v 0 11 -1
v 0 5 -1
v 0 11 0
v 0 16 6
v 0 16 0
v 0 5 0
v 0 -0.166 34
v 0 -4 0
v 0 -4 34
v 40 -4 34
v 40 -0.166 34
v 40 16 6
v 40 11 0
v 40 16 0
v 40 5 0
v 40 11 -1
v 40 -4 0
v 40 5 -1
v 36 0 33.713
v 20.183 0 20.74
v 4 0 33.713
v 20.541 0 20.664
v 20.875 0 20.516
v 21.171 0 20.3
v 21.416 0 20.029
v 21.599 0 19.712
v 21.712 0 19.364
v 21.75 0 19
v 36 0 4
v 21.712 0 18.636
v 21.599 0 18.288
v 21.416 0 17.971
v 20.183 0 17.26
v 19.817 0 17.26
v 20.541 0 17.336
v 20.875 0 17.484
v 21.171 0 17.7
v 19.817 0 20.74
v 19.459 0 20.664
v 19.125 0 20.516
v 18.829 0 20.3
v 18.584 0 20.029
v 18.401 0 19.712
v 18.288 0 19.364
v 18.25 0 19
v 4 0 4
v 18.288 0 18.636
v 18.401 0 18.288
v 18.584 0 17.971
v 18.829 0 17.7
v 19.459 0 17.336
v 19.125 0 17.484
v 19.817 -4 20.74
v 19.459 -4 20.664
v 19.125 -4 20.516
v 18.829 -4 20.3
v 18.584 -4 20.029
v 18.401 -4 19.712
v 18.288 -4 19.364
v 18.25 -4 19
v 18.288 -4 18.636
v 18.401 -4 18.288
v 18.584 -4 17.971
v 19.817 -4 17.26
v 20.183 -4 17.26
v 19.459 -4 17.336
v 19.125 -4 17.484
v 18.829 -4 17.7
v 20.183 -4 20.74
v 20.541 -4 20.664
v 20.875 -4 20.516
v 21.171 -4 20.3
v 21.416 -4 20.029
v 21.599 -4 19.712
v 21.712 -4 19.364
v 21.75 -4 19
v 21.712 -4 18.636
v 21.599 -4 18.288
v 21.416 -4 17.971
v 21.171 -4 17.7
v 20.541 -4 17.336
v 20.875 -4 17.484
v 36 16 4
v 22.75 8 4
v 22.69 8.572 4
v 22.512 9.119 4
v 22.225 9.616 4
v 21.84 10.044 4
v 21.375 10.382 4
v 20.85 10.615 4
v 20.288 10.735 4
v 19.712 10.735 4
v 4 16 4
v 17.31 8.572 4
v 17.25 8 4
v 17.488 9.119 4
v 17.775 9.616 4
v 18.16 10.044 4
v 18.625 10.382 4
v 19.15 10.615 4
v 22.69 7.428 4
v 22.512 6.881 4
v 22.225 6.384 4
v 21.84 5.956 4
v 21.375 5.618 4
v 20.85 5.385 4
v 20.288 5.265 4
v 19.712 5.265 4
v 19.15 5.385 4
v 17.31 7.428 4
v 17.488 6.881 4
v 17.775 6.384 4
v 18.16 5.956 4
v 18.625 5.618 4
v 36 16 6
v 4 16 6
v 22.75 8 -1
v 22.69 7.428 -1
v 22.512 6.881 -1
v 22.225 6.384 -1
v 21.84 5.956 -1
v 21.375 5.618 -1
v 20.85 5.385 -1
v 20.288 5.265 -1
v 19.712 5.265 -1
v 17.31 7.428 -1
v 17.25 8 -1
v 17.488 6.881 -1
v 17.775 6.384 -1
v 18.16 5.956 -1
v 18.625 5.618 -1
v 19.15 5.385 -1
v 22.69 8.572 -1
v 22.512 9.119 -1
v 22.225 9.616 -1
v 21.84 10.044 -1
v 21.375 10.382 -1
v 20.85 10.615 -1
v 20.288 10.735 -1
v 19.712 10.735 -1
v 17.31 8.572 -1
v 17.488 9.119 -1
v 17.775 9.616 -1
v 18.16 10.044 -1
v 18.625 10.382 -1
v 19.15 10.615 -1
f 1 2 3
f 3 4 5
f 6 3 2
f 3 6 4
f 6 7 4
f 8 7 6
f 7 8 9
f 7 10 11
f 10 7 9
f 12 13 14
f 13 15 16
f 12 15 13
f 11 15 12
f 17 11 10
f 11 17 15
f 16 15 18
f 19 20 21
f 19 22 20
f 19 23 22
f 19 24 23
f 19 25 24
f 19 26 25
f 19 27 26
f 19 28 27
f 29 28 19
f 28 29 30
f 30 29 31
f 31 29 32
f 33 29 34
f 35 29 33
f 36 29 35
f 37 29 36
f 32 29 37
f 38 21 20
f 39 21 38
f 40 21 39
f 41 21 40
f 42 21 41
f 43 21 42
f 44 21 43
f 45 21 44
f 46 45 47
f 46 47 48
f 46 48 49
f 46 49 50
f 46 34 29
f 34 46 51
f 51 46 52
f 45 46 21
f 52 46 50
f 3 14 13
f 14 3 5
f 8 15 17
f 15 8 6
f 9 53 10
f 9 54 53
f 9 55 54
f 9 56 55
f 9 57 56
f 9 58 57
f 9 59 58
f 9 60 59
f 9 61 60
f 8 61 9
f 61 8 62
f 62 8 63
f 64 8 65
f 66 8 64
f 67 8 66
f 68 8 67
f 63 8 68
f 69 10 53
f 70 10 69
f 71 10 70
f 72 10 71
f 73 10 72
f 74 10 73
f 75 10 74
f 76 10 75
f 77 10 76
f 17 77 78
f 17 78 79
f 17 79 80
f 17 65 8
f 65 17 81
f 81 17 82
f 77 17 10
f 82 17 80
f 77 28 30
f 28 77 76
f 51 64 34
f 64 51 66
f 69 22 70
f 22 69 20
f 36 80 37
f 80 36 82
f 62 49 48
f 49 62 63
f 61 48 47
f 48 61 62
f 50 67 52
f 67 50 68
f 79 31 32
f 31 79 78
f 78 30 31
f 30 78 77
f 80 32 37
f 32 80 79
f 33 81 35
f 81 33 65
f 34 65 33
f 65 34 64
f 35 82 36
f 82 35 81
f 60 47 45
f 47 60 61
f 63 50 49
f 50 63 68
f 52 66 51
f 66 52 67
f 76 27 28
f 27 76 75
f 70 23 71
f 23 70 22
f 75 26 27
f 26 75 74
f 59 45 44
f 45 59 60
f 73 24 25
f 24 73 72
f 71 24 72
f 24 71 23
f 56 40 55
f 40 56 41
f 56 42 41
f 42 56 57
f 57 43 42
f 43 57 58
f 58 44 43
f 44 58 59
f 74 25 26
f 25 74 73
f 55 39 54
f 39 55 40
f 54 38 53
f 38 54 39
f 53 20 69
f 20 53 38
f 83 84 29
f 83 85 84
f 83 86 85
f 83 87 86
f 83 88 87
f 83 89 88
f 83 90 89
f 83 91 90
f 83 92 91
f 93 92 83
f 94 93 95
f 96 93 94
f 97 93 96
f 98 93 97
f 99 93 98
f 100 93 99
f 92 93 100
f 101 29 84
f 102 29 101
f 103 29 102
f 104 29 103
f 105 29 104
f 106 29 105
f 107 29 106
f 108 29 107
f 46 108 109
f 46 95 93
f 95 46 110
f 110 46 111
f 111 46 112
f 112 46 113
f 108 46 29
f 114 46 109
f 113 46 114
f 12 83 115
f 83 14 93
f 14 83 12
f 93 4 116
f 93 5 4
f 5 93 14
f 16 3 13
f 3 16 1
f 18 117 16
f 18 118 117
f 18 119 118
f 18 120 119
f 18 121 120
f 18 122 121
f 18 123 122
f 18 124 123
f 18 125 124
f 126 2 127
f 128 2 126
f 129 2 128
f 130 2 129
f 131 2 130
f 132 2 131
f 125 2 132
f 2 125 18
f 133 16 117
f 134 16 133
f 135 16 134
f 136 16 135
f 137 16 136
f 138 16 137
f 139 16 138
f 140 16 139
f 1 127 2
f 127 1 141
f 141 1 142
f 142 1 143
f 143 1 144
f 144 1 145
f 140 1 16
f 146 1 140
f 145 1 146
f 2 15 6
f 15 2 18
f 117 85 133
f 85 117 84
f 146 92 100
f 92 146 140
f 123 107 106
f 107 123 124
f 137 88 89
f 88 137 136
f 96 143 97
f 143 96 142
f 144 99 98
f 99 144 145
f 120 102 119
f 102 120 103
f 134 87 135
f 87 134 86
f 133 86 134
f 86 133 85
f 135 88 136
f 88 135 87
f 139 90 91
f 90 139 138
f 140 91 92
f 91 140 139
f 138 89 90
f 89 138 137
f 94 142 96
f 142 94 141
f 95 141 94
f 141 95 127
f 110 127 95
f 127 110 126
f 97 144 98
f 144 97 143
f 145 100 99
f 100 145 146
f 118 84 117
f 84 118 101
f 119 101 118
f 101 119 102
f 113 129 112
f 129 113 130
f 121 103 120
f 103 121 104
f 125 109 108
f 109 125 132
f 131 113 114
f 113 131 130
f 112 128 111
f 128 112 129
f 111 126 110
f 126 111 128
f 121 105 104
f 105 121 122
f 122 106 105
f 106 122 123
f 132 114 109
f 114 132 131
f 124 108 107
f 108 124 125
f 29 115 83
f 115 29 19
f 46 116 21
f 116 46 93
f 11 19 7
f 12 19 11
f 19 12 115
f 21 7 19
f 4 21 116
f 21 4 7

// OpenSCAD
WallThickness = 4;

BaseWidth = 40;
BaseHeight = 16;
BaseHoleDiameter = 5.5;
BaseSlotWidth = 6;

SupportLength = 34;
SupportHoleDiameter = 3.5;

difference() {

union() {
difference() {
union() {    
    cube(size=[BaseWidth, BaseHeight, WallThickness], center=false);
    translate([0, BaseHeight/2-BaseSlotWidth/2, -WallThickness/4])
    cube(size=[BaseWidth, BaseSlotWidth, WallThickness/4], center=false);
}    
    translate([BaseWidth/2, BaseHeight/2, -WallThickness/4])
    cylinder(h=WallThickness*2, d=BaseHoleDiameter, center=false, $fn=30);
}



translate([0, -WallThickness, 0])
difference() {
    cube(size=[BaseWidth, WallThickness, SupportLength], center=false);
    translate([BaseWidth/2, 0, SupportLength/2+WallThickness/2])
    rotate([270, 0, 0])
    cylinder(h=WallThickness, d=SupportHoleDiameter, center=false, $fn=30);
}


translate([BaseWidth-WallThickness, 0, 0])
    cube(size=[WallThickness, BaseHeight, SupportLength], center=false);
    cube(size=[WallThickness, BaseHeight, SupportLength], center=false);
}

translate([0, BaseHeight, 6])
rotate([30, 0, 0])
    cube(size=[BaseWidth, sqrt(BaseHeight*BaseHeight+SupportLength*SupportLength), SupportLength], center=false);

}
